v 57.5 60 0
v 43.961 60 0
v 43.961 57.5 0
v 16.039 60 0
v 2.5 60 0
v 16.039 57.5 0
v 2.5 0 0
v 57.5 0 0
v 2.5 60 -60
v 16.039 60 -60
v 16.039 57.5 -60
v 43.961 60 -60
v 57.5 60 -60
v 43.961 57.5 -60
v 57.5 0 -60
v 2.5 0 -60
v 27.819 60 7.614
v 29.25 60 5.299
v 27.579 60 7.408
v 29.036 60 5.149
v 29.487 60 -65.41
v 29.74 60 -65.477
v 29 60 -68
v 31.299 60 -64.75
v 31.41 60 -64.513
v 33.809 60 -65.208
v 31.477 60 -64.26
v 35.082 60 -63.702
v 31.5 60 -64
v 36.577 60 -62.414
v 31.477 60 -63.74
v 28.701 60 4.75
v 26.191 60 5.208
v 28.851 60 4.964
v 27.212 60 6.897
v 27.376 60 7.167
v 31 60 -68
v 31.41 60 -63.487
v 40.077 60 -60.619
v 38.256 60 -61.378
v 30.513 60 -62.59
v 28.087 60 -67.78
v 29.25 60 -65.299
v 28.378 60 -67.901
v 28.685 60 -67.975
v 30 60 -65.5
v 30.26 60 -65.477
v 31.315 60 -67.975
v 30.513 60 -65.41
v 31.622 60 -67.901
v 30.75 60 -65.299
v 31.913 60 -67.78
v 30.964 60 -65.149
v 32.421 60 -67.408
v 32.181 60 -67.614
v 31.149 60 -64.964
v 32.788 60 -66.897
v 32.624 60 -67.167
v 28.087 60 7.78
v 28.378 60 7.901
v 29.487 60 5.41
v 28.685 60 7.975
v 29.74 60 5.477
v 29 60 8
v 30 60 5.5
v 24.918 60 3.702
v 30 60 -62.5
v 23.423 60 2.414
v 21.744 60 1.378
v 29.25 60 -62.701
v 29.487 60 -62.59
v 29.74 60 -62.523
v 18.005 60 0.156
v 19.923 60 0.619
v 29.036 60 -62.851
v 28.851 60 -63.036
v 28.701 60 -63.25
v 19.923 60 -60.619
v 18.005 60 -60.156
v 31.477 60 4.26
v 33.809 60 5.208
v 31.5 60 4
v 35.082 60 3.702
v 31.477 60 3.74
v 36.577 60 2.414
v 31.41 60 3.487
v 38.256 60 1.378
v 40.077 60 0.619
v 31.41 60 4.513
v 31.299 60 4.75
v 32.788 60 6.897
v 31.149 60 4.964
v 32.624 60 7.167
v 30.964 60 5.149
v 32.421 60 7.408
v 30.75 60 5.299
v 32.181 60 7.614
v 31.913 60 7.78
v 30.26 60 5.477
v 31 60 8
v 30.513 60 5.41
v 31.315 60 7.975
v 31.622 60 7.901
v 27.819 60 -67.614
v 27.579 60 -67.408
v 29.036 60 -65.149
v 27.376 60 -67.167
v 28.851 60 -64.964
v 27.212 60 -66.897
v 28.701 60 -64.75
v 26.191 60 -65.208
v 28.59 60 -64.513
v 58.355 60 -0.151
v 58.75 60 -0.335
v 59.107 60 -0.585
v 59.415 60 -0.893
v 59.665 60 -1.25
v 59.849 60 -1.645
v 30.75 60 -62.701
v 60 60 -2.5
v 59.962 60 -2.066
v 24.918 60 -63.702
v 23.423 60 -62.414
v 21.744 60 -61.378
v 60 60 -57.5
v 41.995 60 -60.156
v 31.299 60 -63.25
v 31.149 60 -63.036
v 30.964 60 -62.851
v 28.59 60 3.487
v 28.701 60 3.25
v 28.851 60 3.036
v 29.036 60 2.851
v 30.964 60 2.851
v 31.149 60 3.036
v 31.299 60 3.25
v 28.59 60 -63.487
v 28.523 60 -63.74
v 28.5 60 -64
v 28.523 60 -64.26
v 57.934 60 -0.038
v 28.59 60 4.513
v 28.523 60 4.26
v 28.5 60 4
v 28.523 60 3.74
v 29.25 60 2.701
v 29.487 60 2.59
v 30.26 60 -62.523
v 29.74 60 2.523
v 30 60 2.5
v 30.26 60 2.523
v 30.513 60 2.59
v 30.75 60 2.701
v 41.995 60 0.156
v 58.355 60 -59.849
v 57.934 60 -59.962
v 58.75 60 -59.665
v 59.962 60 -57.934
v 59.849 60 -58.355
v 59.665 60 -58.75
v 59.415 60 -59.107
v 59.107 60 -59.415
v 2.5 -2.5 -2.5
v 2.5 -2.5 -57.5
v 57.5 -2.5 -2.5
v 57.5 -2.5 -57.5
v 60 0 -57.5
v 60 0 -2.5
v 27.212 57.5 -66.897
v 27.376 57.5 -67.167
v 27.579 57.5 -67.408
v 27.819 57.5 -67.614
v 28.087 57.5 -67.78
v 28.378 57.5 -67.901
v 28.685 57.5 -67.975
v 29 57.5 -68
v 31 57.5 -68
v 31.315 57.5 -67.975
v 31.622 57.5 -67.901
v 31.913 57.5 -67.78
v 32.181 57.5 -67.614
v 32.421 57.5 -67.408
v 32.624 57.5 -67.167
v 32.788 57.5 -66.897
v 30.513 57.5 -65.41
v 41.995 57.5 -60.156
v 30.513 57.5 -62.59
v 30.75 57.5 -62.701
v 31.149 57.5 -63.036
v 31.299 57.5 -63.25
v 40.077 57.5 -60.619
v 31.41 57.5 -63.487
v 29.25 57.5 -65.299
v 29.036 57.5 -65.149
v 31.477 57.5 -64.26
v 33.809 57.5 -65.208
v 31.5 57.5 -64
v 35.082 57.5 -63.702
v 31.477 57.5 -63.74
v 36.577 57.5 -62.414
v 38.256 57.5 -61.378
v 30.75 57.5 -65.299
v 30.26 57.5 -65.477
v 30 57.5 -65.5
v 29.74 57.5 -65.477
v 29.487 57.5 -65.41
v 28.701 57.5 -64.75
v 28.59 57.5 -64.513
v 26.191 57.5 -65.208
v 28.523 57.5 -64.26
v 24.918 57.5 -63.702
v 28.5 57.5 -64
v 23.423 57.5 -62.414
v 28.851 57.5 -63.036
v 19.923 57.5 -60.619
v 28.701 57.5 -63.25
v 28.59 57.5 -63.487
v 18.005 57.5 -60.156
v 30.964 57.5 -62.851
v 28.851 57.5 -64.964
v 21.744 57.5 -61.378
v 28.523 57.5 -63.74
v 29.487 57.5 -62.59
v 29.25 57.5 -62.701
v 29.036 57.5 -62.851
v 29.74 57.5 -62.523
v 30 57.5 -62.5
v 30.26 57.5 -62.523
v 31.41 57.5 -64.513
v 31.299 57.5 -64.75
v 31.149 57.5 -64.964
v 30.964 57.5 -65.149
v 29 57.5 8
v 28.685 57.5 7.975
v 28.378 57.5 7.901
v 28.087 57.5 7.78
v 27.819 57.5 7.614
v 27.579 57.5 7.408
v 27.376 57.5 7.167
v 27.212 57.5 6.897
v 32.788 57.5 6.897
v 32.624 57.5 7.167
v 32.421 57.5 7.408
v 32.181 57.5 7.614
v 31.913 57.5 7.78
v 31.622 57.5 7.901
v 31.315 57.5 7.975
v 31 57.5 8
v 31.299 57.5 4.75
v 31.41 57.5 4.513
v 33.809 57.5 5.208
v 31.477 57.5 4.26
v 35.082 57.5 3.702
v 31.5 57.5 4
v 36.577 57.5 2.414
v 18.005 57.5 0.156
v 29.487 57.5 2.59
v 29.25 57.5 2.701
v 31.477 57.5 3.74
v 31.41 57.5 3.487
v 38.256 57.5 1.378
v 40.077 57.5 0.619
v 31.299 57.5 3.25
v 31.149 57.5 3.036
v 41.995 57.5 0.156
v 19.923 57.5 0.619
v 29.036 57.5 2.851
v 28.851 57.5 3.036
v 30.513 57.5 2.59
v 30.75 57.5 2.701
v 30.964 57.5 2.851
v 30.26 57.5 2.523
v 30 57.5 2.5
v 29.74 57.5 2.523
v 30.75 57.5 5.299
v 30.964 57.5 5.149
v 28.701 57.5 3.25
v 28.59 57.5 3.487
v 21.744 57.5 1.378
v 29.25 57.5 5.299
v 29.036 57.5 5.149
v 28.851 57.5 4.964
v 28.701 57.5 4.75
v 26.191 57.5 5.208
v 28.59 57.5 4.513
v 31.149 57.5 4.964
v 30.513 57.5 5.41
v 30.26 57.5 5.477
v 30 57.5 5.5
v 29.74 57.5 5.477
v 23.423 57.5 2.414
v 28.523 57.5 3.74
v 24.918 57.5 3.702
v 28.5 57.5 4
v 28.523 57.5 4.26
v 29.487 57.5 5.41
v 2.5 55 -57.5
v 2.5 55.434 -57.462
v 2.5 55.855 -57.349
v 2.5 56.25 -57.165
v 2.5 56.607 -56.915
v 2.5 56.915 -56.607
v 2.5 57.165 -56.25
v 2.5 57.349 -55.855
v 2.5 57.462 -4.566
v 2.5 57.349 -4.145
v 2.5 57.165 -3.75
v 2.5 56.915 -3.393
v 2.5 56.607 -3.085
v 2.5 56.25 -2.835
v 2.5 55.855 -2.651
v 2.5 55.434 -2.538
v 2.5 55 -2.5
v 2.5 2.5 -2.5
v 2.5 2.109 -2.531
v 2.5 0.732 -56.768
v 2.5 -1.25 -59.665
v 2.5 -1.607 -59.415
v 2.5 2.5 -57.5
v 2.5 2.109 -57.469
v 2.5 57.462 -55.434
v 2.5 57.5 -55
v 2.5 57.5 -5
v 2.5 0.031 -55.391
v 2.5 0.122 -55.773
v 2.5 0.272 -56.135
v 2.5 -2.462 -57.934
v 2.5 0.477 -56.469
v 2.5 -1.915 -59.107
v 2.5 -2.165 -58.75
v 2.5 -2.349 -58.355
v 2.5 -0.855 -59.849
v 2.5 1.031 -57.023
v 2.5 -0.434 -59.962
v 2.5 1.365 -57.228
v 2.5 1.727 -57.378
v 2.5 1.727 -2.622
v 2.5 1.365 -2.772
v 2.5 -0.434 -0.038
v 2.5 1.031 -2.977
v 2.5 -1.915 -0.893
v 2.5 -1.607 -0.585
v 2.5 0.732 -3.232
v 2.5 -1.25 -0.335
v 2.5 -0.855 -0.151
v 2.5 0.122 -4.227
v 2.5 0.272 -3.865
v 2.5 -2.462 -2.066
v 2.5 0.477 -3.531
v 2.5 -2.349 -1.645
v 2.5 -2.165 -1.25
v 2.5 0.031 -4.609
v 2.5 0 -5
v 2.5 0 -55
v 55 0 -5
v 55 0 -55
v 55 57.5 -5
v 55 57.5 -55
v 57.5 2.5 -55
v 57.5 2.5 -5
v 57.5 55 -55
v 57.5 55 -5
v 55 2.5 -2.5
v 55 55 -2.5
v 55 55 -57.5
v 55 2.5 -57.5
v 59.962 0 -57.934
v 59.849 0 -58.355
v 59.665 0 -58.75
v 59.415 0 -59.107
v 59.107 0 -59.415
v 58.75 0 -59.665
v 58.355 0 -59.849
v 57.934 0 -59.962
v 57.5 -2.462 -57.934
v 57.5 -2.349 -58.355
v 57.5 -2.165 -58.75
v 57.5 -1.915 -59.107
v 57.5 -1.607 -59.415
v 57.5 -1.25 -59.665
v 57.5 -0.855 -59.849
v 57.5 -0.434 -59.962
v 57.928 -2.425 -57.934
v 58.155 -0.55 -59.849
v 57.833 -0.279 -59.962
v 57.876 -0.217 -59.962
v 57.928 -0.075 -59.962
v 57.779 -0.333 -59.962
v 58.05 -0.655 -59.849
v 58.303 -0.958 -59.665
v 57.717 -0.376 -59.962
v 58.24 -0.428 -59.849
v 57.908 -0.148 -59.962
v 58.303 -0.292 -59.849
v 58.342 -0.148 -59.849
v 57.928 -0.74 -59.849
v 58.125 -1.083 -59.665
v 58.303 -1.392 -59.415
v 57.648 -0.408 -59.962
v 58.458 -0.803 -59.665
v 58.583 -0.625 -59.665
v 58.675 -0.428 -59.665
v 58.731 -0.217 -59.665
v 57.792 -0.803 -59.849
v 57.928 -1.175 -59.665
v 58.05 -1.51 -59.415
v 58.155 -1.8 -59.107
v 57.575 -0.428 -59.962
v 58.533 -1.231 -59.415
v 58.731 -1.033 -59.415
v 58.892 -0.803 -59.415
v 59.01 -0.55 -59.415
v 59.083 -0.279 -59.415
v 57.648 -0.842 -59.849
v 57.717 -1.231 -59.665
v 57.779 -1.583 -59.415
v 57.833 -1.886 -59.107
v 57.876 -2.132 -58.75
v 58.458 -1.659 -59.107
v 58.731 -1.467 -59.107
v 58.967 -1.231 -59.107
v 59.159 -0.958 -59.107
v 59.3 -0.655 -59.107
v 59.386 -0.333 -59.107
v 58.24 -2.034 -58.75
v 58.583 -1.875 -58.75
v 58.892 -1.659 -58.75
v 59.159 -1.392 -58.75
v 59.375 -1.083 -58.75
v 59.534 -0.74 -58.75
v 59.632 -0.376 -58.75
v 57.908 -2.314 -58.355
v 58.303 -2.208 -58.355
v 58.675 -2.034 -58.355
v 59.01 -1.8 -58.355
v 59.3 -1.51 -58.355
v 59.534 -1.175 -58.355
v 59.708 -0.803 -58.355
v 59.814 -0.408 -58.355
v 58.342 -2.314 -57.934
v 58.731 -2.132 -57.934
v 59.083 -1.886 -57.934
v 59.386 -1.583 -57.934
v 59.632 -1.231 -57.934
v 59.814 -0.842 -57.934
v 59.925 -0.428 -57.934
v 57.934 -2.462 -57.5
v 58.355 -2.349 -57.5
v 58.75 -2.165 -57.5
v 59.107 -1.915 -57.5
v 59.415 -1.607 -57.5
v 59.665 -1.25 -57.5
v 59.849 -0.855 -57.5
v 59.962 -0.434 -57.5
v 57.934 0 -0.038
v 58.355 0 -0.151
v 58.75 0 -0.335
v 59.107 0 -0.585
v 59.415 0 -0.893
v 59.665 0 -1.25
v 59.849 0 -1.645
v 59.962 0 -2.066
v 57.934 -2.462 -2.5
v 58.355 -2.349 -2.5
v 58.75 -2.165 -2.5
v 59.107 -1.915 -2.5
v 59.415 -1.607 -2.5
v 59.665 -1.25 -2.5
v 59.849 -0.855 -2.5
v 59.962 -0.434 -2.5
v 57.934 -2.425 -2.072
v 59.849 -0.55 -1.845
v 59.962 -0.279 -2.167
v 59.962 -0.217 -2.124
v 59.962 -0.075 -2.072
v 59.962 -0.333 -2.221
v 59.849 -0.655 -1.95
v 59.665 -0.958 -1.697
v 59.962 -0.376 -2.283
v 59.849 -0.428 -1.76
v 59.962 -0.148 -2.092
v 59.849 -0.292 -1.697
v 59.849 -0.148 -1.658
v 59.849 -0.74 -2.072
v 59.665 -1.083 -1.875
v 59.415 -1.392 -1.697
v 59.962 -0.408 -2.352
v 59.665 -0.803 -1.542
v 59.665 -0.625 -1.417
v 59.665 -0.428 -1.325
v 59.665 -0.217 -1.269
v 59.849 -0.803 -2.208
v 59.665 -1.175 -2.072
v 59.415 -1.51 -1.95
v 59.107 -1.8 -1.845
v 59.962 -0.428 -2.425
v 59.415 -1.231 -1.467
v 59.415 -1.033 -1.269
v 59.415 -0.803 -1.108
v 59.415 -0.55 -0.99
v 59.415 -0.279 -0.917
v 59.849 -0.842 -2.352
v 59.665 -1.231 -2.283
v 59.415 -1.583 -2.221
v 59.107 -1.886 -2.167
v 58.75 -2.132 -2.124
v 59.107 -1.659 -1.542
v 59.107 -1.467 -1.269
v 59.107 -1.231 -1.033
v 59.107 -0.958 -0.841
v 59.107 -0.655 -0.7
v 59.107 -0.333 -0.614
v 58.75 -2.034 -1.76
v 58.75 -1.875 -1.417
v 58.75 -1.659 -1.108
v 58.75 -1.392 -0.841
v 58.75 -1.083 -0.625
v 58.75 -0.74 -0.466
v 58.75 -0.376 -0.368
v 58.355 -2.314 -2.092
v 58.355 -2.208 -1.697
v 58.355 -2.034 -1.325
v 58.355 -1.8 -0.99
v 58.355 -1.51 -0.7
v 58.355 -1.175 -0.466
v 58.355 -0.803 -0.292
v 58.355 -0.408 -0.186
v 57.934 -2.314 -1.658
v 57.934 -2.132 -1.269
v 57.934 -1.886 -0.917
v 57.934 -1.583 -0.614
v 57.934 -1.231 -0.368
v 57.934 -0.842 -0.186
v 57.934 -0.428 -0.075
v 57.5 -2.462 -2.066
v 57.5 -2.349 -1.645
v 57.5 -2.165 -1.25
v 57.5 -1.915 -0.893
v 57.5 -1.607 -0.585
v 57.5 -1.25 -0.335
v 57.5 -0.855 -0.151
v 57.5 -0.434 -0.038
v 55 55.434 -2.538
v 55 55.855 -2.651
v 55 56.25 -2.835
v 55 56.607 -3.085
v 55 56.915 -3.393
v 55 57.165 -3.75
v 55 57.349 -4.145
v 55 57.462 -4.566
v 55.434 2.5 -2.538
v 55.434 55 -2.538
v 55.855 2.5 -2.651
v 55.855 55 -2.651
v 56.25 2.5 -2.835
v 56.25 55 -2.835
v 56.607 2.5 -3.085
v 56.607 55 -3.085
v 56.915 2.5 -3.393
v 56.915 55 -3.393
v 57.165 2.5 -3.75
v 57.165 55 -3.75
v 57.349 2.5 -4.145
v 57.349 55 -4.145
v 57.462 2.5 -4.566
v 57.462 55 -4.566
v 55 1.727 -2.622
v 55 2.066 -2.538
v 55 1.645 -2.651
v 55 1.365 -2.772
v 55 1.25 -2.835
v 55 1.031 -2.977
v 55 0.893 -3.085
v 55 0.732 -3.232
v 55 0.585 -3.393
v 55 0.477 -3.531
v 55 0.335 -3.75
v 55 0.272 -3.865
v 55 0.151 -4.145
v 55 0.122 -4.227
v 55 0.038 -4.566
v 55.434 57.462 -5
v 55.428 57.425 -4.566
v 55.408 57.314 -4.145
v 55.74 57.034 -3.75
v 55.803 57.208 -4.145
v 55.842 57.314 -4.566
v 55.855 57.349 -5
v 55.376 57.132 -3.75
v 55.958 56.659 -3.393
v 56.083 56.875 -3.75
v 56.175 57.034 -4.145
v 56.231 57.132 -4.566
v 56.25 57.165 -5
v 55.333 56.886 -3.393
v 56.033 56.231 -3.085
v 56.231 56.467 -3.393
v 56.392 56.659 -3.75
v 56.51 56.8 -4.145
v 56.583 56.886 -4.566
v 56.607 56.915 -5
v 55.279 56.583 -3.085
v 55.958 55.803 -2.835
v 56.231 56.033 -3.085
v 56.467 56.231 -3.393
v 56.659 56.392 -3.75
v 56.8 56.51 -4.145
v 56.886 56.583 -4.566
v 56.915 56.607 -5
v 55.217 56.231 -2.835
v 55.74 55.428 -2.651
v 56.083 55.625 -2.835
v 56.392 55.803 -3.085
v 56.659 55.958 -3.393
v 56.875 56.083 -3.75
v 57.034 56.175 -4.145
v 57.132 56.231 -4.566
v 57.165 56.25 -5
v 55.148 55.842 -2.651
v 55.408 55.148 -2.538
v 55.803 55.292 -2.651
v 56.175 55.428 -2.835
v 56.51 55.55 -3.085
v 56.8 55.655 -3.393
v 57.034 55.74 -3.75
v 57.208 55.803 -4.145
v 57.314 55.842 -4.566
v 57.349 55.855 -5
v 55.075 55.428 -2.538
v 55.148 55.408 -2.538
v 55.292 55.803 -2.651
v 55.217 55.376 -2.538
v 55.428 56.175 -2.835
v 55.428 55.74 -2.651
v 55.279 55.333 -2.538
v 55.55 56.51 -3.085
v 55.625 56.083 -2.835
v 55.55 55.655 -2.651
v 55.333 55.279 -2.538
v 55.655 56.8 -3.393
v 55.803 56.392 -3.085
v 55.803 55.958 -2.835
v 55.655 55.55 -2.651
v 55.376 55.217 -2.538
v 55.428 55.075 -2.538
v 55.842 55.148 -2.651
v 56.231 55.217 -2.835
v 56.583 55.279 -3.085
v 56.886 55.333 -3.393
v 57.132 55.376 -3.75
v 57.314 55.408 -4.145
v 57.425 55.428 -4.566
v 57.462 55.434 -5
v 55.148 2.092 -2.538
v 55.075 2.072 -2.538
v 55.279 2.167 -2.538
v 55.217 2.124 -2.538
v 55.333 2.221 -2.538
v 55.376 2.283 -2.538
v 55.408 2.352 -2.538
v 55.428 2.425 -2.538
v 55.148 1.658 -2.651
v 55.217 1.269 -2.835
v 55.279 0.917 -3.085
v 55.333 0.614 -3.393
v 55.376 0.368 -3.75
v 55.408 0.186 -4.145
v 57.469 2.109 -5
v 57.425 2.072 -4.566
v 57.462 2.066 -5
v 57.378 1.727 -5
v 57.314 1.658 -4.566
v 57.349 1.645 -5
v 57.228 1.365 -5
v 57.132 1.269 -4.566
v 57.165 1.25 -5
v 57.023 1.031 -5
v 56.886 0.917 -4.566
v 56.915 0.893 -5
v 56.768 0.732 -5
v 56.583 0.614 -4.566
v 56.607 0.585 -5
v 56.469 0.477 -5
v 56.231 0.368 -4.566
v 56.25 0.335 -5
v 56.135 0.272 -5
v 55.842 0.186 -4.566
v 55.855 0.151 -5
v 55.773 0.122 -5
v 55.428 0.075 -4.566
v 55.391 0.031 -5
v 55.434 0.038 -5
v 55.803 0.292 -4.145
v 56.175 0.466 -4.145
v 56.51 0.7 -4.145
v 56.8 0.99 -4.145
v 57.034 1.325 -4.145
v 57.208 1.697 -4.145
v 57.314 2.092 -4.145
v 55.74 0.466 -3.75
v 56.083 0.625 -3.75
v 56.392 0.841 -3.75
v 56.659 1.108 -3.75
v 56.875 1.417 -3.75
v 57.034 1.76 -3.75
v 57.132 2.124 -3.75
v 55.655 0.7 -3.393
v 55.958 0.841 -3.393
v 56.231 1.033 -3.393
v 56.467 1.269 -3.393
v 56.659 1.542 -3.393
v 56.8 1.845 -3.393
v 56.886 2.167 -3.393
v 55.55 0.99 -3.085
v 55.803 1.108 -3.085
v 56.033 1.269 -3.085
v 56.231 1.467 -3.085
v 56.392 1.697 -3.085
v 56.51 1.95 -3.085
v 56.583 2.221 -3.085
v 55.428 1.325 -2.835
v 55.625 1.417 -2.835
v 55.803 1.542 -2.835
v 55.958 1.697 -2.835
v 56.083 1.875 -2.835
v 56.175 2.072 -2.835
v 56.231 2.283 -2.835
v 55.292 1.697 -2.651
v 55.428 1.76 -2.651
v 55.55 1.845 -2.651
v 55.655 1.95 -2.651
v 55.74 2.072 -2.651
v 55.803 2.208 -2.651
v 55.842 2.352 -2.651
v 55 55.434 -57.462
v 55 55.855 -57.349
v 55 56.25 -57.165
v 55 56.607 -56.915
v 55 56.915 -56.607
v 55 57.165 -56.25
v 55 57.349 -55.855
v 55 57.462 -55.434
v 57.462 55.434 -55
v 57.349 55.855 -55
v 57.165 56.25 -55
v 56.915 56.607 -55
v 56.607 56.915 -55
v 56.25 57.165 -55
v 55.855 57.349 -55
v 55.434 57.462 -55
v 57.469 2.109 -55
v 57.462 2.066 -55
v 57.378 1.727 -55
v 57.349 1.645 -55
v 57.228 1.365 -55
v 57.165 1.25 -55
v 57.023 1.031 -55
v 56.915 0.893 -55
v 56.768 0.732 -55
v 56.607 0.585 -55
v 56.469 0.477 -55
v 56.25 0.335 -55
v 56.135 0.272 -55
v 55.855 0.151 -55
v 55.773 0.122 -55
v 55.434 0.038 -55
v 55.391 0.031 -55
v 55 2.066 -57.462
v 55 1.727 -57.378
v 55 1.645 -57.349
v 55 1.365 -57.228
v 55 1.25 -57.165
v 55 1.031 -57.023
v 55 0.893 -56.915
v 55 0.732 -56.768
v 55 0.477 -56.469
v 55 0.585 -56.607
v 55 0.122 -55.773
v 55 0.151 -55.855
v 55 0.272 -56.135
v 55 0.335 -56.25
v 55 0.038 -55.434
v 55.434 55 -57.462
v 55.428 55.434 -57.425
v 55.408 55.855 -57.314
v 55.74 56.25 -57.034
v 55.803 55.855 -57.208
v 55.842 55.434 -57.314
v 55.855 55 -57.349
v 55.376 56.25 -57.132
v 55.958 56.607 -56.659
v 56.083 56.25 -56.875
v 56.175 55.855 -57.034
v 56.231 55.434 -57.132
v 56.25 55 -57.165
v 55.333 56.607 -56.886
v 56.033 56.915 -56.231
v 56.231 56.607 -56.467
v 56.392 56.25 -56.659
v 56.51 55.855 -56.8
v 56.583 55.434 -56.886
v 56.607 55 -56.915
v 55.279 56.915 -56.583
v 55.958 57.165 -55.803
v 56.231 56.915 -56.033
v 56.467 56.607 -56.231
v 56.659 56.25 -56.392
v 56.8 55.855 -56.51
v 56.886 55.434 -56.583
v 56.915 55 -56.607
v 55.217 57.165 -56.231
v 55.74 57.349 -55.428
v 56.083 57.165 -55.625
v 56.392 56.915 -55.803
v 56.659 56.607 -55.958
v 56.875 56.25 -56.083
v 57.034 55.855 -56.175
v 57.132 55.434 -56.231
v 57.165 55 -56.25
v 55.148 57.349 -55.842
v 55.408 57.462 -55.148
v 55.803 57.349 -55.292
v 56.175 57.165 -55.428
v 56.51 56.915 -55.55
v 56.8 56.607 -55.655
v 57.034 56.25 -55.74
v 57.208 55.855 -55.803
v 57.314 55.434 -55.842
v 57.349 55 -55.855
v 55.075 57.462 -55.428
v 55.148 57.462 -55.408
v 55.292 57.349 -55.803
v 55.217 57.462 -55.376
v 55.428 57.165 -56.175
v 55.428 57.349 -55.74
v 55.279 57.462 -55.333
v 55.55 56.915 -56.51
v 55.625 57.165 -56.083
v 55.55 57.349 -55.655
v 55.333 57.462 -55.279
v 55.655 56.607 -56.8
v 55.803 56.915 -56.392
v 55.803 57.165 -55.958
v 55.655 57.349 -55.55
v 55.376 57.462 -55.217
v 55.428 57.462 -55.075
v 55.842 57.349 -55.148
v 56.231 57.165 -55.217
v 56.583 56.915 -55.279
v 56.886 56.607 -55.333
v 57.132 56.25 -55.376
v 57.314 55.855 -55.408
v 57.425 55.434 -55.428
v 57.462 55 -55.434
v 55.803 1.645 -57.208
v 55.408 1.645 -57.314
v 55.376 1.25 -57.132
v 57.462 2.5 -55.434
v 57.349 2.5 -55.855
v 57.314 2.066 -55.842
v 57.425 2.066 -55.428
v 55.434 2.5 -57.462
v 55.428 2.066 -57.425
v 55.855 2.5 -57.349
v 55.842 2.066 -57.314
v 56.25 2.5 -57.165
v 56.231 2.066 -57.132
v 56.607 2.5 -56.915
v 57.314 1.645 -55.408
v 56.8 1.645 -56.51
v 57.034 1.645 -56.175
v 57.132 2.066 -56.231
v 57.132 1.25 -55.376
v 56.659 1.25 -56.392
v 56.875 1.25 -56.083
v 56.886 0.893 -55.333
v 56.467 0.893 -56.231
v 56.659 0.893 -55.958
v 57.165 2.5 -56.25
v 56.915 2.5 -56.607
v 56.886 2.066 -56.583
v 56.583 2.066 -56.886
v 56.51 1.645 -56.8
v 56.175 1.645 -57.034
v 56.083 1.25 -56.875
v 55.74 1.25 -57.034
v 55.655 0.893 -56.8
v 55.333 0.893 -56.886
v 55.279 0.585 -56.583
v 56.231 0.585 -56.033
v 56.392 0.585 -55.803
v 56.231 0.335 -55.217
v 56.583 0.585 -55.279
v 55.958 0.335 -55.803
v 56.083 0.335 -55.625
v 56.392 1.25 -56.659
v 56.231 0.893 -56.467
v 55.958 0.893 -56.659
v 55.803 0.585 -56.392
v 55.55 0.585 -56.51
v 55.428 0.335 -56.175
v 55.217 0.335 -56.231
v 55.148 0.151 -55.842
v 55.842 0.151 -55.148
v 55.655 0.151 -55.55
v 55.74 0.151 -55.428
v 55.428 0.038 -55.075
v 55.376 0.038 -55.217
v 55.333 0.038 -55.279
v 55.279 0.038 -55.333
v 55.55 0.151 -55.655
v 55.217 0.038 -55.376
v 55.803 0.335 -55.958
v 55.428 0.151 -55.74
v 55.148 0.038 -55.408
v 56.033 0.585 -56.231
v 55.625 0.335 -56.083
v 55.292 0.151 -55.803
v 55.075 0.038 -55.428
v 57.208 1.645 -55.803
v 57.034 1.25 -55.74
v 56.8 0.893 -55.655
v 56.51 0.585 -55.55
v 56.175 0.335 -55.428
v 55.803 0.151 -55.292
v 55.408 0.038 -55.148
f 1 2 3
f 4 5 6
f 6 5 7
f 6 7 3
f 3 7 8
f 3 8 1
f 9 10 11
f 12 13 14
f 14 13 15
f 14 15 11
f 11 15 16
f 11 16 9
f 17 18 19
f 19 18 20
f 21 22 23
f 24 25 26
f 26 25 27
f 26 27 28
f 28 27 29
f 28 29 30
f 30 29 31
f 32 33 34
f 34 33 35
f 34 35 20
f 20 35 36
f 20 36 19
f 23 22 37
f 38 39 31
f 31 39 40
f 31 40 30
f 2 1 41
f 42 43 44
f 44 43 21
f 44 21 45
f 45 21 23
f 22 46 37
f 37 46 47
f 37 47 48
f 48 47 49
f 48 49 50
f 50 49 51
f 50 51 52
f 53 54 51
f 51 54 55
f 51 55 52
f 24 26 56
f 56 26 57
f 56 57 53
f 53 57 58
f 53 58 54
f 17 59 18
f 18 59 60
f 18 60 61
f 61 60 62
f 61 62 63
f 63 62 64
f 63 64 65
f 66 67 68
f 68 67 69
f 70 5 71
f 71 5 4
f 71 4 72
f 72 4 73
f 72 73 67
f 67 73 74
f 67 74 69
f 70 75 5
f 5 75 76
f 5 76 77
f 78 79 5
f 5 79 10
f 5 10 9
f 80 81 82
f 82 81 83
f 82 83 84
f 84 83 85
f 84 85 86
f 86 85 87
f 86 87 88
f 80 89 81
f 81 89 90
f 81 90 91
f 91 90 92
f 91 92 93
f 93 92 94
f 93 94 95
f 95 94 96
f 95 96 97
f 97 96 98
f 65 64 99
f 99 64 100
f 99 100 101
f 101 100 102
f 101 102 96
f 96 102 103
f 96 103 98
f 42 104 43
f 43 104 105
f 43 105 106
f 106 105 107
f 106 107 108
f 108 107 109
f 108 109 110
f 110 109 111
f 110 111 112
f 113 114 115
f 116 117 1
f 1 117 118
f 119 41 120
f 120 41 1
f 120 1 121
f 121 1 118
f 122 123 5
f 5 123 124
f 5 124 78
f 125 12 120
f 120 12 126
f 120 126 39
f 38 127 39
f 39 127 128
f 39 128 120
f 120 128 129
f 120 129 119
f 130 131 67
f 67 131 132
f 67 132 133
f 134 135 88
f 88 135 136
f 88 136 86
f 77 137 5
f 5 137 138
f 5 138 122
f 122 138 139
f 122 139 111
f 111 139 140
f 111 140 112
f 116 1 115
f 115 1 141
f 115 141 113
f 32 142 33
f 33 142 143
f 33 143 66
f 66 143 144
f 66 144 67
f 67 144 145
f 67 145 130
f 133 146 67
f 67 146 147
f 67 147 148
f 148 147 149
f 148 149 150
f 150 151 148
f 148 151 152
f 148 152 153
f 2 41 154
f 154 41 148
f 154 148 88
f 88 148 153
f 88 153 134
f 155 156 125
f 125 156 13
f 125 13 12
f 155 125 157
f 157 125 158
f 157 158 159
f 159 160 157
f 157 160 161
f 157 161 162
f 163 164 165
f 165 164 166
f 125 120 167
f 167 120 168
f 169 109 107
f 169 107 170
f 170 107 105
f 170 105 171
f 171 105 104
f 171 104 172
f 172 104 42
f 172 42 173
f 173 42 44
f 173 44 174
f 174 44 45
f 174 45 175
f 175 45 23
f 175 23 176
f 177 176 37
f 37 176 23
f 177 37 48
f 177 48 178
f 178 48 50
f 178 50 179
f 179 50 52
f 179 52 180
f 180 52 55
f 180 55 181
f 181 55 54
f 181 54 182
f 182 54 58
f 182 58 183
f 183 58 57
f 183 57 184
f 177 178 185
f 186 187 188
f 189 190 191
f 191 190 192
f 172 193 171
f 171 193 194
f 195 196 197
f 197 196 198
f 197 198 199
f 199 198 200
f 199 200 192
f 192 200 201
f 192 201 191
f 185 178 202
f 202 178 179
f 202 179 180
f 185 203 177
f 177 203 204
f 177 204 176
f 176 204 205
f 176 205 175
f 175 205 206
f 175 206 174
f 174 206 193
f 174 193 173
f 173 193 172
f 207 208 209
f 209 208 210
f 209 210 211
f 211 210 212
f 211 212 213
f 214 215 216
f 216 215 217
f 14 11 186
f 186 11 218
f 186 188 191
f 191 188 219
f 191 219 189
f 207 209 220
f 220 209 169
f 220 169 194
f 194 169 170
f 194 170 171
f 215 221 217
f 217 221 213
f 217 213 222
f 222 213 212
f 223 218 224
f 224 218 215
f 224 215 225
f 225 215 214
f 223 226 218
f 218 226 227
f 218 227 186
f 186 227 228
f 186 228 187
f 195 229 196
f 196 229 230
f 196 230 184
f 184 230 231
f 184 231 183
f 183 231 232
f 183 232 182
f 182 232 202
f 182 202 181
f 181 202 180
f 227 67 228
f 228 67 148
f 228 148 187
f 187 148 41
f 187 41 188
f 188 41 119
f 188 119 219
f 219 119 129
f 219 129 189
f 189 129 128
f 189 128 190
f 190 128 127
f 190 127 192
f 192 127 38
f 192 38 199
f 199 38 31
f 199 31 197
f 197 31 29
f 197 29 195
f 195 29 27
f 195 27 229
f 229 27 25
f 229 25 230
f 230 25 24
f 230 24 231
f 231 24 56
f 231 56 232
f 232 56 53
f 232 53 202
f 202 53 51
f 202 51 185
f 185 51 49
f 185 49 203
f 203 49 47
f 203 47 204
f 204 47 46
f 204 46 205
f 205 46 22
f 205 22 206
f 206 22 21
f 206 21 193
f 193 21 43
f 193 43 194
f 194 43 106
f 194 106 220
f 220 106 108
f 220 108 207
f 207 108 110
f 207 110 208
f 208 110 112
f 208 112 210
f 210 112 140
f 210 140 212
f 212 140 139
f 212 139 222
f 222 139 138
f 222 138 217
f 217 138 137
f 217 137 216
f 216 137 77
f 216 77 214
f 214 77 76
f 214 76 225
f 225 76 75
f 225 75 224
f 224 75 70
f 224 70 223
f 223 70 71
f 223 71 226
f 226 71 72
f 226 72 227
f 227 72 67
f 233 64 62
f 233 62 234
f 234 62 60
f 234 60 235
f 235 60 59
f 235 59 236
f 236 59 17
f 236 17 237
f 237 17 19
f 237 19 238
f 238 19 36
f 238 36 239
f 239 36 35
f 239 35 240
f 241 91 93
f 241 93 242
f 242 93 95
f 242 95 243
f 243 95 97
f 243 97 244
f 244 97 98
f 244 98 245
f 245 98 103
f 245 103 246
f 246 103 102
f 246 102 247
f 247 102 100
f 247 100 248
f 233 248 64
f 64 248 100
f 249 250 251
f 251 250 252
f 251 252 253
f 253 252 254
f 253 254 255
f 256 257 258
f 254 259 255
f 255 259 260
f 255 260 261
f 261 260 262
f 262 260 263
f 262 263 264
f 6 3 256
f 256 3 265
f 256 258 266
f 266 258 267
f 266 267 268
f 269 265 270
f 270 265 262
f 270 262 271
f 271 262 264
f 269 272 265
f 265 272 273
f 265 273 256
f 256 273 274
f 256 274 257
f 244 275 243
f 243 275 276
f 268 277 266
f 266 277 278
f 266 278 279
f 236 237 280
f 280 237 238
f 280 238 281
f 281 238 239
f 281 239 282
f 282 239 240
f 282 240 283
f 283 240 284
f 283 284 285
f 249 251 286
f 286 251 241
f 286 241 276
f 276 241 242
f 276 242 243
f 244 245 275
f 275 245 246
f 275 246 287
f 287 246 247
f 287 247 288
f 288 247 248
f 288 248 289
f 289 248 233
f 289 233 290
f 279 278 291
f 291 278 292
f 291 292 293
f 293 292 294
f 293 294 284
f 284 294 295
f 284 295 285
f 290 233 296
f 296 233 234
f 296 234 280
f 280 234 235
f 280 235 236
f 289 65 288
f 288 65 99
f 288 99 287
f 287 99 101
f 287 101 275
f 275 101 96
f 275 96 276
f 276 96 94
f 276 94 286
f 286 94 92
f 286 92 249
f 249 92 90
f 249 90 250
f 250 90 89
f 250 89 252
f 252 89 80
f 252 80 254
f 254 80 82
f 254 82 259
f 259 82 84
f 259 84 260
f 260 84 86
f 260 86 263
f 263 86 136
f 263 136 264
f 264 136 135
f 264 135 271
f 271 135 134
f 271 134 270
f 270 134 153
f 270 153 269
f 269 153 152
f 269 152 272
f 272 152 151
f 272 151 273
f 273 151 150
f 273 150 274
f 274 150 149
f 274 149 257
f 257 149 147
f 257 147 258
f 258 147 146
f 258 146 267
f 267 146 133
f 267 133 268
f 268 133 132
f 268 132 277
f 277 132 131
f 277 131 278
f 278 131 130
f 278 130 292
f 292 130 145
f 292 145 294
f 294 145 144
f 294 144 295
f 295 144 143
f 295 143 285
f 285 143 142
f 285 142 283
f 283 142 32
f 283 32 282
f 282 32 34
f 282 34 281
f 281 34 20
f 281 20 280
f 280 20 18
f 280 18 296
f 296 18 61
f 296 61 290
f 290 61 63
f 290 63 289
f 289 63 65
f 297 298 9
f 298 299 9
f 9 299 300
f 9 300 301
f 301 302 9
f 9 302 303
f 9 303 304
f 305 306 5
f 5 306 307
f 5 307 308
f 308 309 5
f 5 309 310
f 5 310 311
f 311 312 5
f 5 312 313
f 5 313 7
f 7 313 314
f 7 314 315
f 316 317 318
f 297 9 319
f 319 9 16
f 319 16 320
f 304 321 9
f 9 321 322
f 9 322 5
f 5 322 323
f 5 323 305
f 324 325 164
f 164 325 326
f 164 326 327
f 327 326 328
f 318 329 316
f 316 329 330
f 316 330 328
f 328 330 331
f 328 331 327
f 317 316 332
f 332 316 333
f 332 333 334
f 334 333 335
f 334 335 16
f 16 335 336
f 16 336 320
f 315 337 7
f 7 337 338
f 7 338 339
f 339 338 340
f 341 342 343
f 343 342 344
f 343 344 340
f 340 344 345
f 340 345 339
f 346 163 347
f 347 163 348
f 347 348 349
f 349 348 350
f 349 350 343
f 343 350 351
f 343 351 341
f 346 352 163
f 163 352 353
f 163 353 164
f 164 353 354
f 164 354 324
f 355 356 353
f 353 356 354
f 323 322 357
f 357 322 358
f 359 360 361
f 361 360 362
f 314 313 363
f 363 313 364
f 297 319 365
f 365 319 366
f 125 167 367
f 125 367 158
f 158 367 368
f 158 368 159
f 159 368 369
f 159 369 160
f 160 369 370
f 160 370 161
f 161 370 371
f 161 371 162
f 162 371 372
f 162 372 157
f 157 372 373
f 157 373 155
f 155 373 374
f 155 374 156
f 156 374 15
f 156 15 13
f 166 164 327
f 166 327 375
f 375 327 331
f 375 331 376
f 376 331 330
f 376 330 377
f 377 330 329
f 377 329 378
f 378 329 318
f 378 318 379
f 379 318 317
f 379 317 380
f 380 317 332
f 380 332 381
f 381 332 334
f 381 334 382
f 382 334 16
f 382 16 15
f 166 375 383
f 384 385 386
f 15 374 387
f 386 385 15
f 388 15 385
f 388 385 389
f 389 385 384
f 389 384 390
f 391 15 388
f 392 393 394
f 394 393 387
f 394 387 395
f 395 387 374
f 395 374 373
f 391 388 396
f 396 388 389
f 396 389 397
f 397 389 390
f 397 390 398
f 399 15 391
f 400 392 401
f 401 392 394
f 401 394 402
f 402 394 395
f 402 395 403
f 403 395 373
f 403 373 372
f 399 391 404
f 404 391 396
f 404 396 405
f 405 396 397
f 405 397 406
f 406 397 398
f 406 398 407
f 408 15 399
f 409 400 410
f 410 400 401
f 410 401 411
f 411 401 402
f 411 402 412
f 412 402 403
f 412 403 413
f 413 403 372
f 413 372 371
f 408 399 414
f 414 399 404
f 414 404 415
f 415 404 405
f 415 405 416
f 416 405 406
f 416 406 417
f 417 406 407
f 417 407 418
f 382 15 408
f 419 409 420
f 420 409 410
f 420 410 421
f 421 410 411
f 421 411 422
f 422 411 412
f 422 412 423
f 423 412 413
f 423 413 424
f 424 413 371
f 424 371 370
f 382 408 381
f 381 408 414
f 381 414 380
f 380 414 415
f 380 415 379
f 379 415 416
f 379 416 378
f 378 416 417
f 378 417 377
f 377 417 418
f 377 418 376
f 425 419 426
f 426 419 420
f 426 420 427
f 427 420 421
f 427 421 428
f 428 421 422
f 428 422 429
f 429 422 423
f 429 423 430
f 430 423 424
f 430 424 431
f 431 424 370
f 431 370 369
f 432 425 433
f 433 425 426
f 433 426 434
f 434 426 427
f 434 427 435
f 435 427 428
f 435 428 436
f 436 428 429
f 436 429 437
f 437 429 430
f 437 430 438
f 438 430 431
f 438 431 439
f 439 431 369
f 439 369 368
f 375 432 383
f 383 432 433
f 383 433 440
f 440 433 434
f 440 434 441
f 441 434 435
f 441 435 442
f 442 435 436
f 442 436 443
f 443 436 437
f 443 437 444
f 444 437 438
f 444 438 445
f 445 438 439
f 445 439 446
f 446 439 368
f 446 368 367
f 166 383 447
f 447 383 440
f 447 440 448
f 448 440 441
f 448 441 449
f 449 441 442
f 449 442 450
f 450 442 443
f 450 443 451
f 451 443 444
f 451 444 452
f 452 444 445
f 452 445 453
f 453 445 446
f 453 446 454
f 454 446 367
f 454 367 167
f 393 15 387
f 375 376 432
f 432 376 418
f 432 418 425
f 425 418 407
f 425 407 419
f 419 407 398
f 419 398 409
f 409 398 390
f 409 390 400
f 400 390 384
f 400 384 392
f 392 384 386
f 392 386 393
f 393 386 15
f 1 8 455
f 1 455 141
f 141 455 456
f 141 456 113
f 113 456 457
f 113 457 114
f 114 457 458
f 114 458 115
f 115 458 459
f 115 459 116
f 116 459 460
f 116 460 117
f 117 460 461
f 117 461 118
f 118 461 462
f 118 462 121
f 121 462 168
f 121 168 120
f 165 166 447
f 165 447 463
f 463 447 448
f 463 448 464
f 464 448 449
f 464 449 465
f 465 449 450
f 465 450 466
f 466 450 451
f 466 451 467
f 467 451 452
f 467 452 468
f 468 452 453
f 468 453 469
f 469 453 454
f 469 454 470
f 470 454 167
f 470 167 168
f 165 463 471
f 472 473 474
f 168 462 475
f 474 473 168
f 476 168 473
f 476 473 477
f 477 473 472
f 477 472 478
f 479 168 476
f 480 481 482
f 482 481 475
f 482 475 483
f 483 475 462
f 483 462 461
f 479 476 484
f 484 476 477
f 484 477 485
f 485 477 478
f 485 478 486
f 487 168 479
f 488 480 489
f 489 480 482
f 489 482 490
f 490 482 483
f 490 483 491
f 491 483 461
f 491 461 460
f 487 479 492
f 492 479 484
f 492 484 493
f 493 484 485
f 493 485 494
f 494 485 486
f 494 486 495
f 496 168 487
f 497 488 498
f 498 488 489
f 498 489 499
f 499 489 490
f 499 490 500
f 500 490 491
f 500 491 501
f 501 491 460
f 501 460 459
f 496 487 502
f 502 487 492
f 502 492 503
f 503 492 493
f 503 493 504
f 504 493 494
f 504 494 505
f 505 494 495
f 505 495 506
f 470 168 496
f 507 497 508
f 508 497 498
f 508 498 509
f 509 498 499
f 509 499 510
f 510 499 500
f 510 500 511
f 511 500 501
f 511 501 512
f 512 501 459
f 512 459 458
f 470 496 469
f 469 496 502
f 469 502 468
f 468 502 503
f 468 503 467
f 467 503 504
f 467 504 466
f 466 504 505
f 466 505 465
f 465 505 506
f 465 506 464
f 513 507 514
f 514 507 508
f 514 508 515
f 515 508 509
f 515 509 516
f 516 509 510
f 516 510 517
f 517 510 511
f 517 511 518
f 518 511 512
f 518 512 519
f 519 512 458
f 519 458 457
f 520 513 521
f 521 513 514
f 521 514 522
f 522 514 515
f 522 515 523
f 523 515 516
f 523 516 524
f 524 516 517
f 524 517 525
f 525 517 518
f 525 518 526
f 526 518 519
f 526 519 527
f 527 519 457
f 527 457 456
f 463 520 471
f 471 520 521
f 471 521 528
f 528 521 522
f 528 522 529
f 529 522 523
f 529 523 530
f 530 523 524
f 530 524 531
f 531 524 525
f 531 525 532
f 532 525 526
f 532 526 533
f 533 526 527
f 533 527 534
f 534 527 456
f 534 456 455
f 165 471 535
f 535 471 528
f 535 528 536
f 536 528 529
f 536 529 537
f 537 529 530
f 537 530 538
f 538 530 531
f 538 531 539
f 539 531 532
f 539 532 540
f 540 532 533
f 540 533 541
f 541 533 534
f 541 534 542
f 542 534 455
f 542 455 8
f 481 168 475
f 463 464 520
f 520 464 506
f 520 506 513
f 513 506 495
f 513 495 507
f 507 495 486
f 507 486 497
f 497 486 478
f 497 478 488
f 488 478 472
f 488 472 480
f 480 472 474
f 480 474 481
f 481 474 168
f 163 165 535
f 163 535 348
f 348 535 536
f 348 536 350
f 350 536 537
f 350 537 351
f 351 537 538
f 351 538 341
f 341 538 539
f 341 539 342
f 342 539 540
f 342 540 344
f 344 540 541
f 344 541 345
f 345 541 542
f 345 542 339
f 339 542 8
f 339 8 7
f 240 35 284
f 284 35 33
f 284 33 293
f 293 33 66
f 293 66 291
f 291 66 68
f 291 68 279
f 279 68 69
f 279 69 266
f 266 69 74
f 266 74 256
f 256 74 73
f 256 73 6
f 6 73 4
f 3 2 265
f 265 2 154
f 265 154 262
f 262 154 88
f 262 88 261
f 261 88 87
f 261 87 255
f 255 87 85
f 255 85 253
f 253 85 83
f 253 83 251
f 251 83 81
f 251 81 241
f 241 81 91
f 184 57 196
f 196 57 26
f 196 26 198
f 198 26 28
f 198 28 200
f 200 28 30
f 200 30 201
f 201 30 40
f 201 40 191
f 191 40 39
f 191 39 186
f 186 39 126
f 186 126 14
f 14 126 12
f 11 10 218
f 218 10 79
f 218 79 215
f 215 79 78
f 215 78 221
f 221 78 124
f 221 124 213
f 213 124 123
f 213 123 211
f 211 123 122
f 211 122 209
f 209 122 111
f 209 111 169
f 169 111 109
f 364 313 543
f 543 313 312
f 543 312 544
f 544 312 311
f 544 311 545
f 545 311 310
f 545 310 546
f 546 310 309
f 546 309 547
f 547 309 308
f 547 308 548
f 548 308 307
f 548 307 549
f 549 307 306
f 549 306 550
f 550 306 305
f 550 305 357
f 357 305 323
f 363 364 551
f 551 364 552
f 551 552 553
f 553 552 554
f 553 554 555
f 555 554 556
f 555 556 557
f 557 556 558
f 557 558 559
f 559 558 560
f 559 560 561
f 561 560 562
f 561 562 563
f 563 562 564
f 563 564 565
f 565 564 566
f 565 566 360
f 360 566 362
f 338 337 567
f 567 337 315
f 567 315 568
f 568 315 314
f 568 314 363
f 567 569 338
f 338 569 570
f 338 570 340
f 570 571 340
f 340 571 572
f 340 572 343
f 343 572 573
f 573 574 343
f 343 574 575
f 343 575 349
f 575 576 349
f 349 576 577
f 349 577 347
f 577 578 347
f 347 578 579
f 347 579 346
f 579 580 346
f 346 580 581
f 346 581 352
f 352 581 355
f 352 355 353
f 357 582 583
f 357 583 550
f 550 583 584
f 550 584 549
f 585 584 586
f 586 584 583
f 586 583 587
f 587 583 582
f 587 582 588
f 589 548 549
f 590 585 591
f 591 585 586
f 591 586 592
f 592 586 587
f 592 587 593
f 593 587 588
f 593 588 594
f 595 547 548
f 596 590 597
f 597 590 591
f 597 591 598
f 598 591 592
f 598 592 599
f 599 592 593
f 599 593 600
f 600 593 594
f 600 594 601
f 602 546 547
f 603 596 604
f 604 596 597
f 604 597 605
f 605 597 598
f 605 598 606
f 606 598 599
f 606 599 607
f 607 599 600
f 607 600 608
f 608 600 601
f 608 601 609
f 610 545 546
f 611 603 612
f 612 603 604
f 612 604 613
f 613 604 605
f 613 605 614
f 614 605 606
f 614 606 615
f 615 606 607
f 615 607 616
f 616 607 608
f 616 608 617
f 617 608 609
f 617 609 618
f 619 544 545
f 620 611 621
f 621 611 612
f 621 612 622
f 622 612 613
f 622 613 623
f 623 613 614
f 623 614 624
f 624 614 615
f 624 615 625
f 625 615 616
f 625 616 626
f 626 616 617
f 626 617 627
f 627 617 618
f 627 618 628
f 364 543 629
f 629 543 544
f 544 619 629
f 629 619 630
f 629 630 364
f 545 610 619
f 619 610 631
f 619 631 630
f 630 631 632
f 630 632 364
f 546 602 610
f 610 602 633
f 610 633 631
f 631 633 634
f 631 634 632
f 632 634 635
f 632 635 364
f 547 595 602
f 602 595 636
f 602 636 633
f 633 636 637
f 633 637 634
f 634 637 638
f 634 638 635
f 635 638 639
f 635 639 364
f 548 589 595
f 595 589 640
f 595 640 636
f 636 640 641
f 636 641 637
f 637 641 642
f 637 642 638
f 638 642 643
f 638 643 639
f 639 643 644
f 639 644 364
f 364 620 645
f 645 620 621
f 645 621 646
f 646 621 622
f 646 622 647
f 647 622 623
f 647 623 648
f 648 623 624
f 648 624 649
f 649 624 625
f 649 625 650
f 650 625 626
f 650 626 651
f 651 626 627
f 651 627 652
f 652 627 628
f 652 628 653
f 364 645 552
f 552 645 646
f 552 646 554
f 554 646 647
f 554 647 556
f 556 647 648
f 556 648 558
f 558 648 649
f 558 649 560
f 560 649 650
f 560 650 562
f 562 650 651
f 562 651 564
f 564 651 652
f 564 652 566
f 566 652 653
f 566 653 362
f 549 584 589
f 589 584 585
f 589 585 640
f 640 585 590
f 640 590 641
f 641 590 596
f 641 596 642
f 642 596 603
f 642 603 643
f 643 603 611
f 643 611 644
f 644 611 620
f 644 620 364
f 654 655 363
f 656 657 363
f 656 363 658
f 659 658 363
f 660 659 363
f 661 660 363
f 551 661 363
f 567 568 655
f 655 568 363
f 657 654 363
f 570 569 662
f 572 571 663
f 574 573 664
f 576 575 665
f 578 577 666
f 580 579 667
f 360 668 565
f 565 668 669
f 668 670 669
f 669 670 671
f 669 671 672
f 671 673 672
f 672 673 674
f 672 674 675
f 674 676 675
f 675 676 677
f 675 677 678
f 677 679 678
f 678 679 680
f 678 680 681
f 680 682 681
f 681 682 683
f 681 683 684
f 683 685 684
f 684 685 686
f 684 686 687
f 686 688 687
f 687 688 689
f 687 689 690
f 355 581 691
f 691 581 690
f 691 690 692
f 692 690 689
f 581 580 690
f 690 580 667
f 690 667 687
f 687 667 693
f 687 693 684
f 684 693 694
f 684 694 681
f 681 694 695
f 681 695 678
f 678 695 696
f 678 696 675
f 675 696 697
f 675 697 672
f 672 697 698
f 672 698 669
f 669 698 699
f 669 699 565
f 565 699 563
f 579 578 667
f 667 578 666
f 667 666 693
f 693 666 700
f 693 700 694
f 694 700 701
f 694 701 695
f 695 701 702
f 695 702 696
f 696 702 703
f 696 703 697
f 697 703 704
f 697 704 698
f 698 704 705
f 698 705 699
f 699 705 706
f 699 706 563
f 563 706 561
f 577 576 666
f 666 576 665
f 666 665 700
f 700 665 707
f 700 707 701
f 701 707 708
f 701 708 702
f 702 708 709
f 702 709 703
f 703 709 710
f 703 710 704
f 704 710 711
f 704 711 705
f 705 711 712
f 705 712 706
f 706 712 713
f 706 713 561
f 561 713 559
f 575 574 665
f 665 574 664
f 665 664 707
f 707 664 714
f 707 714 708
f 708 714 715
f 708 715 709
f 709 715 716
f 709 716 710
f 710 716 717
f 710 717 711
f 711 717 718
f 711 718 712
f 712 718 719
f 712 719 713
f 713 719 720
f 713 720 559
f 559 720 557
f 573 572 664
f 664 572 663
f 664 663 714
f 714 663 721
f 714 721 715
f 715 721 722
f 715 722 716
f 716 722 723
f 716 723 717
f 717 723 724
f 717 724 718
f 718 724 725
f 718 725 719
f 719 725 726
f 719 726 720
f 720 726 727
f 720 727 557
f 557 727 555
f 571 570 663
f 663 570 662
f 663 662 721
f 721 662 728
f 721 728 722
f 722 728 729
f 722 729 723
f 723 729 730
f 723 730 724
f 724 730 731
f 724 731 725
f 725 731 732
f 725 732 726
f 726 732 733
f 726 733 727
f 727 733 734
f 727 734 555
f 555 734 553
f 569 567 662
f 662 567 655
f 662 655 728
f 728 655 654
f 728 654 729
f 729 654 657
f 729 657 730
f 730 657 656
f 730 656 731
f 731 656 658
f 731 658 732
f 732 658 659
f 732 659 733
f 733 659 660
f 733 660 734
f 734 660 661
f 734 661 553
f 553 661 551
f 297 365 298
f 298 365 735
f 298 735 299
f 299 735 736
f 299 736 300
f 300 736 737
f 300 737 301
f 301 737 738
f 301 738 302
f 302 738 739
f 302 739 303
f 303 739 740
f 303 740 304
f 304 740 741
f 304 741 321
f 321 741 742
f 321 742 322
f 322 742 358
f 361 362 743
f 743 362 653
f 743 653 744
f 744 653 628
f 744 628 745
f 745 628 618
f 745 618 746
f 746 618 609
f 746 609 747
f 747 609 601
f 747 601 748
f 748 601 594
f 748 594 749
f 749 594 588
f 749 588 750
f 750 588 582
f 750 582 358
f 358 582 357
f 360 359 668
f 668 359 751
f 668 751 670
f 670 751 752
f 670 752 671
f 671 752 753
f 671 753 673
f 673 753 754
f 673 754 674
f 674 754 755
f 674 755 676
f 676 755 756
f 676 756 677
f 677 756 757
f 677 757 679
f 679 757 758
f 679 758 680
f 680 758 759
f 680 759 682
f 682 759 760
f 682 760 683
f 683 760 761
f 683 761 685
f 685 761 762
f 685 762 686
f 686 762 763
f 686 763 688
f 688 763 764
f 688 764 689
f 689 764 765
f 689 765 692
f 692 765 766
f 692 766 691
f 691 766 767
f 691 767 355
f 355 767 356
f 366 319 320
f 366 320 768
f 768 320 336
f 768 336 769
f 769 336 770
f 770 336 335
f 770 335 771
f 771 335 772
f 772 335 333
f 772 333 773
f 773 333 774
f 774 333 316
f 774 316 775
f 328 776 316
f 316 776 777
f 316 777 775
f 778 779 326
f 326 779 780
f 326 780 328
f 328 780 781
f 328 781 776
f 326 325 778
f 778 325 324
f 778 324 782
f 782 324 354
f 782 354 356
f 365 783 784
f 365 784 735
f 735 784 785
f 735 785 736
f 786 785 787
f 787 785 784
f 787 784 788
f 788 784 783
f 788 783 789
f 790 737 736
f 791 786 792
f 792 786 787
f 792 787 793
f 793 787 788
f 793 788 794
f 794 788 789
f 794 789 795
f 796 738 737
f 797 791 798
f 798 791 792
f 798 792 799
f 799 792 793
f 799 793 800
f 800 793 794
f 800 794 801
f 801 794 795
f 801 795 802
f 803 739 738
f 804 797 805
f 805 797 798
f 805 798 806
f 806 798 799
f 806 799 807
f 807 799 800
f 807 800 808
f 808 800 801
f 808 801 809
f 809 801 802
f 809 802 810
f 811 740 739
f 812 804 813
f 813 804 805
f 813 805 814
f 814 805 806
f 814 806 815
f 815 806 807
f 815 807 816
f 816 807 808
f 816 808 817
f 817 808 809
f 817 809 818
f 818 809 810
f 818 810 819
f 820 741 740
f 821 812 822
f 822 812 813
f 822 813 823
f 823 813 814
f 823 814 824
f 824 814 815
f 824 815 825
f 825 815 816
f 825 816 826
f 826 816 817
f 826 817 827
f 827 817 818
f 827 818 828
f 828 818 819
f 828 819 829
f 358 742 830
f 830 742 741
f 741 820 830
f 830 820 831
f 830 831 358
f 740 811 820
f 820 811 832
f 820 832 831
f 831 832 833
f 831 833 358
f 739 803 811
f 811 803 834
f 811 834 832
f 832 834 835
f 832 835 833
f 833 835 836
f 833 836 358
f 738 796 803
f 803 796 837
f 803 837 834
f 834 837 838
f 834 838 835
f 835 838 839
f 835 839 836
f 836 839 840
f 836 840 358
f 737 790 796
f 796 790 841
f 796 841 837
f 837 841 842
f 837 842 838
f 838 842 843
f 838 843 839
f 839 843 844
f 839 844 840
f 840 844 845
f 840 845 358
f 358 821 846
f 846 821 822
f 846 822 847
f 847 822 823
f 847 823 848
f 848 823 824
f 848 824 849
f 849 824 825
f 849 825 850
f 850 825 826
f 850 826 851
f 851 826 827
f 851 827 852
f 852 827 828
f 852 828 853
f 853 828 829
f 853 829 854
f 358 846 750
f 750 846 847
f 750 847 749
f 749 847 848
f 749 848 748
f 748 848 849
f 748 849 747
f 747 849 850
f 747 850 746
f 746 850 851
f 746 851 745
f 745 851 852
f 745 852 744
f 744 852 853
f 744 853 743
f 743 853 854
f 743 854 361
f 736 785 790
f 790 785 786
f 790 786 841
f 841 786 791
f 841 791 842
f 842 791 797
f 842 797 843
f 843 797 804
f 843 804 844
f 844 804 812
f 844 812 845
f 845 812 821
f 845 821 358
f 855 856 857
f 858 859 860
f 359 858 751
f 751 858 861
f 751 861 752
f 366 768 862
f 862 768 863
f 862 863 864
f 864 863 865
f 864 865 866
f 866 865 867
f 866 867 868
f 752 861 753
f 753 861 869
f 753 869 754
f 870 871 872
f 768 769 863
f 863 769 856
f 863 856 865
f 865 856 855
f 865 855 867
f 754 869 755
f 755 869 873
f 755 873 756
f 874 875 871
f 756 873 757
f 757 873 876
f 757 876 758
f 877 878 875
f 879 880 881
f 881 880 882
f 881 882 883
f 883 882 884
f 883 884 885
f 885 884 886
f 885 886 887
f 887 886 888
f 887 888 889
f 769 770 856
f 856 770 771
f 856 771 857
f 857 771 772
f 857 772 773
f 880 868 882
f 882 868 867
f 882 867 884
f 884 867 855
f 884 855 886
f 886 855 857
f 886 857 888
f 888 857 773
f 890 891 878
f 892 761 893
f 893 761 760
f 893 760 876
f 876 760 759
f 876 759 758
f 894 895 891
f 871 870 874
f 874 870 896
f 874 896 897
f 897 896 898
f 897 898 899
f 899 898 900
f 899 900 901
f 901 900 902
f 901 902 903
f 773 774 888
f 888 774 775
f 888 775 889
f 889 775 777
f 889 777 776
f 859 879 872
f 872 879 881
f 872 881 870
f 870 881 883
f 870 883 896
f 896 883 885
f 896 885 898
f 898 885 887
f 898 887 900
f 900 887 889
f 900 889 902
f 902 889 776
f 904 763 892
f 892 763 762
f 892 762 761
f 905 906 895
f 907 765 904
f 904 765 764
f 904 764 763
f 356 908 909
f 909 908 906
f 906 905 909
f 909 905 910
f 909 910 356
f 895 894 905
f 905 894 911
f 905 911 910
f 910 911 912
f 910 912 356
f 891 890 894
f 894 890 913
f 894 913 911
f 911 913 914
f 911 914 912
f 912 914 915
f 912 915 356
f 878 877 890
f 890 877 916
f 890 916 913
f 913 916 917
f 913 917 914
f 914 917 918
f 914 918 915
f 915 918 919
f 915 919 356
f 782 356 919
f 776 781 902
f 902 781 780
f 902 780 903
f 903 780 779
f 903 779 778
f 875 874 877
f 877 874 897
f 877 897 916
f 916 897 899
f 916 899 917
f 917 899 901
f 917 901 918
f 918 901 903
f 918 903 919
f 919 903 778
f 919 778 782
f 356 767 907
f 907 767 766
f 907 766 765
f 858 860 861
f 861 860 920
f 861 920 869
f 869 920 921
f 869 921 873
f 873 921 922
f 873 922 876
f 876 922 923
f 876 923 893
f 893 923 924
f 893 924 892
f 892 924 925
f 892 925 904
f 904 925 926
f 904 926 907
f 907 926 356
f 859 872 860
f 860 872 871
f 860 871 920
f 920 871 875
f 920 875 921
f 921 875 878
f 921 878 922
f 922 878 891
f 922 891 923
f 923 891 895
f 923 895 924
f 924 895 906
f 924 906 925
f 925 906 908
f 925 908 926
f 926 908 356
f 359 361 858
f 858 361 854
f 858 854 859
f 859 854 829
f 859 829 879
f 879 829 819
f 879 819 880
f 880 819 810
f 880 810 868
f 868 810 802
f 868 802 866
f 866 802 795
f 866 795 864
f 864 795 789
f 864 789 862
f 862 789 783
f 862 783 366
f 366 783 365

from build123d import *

# Parameters (mm, degrees)
SKETCH1_W           = 60
SKETCH1_H           = 60
BOSS_EXTRUDE1_DEPTH = 60
SHELL1_T            = -2.5
SKETCH5_R           = 1.5
BOSS_EXTRUDE3_DEPTH = 2.5
SKETCH6_W           = 60
SKETCH6_H           = 60
BOSS_EXTRUDE4_DEPTH = 2.5
SKETCH7_W           = 60
SKETCH7_H           = 62.5
CUT_EXTRUDE1_DEPTH  = 2.5
FILLET4_R           = 2.5
FILLET5_R           = 12.5
FILLET6_R           = 2.5


with BuildPart() as part:
    # Sketch1 → Boss-Extrude1 (new body)
    with BuildSketch(Plane(origin=(0, 0, 0), x_dir=(1, 0, 0), z_dir=(0, 1, 0))):
        with Locations((30, 30)):
            Rectangle(SKETCH1_W, SKETCH1_H)
    extrude(amount=BOSS_EXTRUDE1_DEPTH)

    # Shell1
    shell1_openings = [part.faces().sort_by_distance(p)[0] for p in [
        (30, 0, -30),
    ]]
    offset(amount=SHELL1_T, openings=shell1_openings, kind=Kind.INTERSECTION)

    # Sketch5 → Boss-Extrude3 (add)
    # profile 1 of 2: a face of its own
    with BuildSketch(Plane(origin=(0, 60, 0), x_dir=(1, 0, 0), z_dir=(0, 1, 0))):
        with BuildLine():
            Line((27, 60), (27, 66))
            ThreePointArc((27, 66), (27.585786438, 67.414213562), (29, 68))
            Line((29, 68), (31, 68))
            ThreePointArc((31, 68), (32.414213562, 67.414213562), (33, 66))
            Line((33, 66), (33, 60))
            Line((33, 60), (27, 60))
        make_face()
        with Locations(Location((30, 64, 0), (0, 0, 270))):
            Circle(SKETCH5_R, mode=Mode.SUBTRACT)
    # profile 2 of 2: a face of its own
    with BuildSketch(Plane(origin=(0, 60, 0), x_dir=(1, 0, 0), z_dir=(0, 1, 0))):
        with BuildLine():
            Line((33, 0), (27, 0))
            Line((27, 0), (27, -6))
            ThreePointArc((27, -6), (27.585786438, -7.414213562), (29, -8))
            Line((29, -8), (31, -8))
            ThreePointArc((31, -8), (32.414213562, -7.414213562), (33, -6))
            Line((33, -6), (33, 0))
        make_face()
        with Locations(Location((30, -4, 0), (0, 0, 90))):
            Circle(SKETCH5_R, mode=Mode.SUBTRACT)
    extrude(amount=-BOSS_EXTRUDE3_DEPTH)

    # Sketch6 → Boss-Extrude4 (add)
    with BuildSketch(Plane.XZ):
        with Locations((30, -30)):
            Rectangle(SKETCH6_W, SKETCH6_H)
    extrude(amount=BOSS_EXTRUDE4_DEPTH)

    # Sketch7 → Cut-Extrude1 (cut)
    with BuildSketch(Plane.ZY):
        with Locations((-30, 28.75)):
            Rectangle(SKETCH7_W, SKETCH7_H)
    extrude(amount=-CUT_EXTRUDE1_DEPTH, mode=Mode.SUBTRACT)

    # Fillet4
    fillet4_edges = [part.edges().sort_by_distance(p)[0] for p in [
        (31.25, -2.5, 0),
        (60, -2.5, -30),
        (31.25, -2.5, -60),
        (60, 28.75, -60),
        (60, 28.75, 0),
    ]]
    fillet(fillet4_edges, radius=FILLET4_R)

    # Fillet5
    # the kernel refuses this fillet: 12.5 mm, written as the material it adds along each edge
    with BuildSketch(Plane(origin=(27, 60, 0), x_dir=(-1, 0, 0), z_dir=(0, -1, 0)), Plane(origin=(33, 60, -60), x_dir=(1, 0, 0), z_dir=(0, -1, 0))) as fillet5_piece_1:
        with BuildLine():
            CenterArc((10.961481397, -12.5), FILLET5_R, 90, 63.366881251)
            Line((-0.212209463, -6.896551724), (-1.329578548, -6.336206897))
            ThreePointArc((-1.329578548, -6.336206897), (-1.25, -6), (-1.25, 0))
            Line((-1.25, 0), (0, 1.25))
            Line((0, 1.25), (10.961481397, 1.25))
            Line((10.961481397, 1.25), (10.961481397, 0))
        make_face()
    extrude(amount=2.5)
    with BuildSketch(Plane(origin=(33, 60, 0), x_dir=(1, 0, 0), z_dir=(0, -1, 0)), Plane(origin=(27, 60, -60), x_dir=(-1, 0, 0), z_dir=(0, -1, 0))) as fillet5_piece_2:
        with BuildLine():
            CenterArc((10.961481397, 12.5), FILLET5_R, 206.633118749, 63.366881251)
            Line((-0.212209463, 6.896551724), (-1.329578548, 6.336206897))
            ThreePointArc((-1.329578548, 6.336206897), (-1.25, 6), (-1.25, 0))
            Line((-1.25, 0), (0, -1.25))
            Line((0, -1.25), (10.961481397, -1.25))
            Line((10.961481397, -1.25), (10.961481397, 0))
        make_face()
    extrude(amount=2.5)

    # Fillet6
    fillet6_edges = [part.edges().sort_by_distance(p)[0] for p in [
        (30, 0, -2.5),
        (57.5, 0, -30),
        (57.5, 28.75, -2.5),
        (30, 0, -57.5),
        (57.5, 28.75, -57.5),
        (30, 57.5, -2.5),
        (57.5, 57.5, -30),
        (30, 57.5, -57.5),
    ]]
    fillet(fillet6_edges, radius=FILLET6_R)


solid = part.part
